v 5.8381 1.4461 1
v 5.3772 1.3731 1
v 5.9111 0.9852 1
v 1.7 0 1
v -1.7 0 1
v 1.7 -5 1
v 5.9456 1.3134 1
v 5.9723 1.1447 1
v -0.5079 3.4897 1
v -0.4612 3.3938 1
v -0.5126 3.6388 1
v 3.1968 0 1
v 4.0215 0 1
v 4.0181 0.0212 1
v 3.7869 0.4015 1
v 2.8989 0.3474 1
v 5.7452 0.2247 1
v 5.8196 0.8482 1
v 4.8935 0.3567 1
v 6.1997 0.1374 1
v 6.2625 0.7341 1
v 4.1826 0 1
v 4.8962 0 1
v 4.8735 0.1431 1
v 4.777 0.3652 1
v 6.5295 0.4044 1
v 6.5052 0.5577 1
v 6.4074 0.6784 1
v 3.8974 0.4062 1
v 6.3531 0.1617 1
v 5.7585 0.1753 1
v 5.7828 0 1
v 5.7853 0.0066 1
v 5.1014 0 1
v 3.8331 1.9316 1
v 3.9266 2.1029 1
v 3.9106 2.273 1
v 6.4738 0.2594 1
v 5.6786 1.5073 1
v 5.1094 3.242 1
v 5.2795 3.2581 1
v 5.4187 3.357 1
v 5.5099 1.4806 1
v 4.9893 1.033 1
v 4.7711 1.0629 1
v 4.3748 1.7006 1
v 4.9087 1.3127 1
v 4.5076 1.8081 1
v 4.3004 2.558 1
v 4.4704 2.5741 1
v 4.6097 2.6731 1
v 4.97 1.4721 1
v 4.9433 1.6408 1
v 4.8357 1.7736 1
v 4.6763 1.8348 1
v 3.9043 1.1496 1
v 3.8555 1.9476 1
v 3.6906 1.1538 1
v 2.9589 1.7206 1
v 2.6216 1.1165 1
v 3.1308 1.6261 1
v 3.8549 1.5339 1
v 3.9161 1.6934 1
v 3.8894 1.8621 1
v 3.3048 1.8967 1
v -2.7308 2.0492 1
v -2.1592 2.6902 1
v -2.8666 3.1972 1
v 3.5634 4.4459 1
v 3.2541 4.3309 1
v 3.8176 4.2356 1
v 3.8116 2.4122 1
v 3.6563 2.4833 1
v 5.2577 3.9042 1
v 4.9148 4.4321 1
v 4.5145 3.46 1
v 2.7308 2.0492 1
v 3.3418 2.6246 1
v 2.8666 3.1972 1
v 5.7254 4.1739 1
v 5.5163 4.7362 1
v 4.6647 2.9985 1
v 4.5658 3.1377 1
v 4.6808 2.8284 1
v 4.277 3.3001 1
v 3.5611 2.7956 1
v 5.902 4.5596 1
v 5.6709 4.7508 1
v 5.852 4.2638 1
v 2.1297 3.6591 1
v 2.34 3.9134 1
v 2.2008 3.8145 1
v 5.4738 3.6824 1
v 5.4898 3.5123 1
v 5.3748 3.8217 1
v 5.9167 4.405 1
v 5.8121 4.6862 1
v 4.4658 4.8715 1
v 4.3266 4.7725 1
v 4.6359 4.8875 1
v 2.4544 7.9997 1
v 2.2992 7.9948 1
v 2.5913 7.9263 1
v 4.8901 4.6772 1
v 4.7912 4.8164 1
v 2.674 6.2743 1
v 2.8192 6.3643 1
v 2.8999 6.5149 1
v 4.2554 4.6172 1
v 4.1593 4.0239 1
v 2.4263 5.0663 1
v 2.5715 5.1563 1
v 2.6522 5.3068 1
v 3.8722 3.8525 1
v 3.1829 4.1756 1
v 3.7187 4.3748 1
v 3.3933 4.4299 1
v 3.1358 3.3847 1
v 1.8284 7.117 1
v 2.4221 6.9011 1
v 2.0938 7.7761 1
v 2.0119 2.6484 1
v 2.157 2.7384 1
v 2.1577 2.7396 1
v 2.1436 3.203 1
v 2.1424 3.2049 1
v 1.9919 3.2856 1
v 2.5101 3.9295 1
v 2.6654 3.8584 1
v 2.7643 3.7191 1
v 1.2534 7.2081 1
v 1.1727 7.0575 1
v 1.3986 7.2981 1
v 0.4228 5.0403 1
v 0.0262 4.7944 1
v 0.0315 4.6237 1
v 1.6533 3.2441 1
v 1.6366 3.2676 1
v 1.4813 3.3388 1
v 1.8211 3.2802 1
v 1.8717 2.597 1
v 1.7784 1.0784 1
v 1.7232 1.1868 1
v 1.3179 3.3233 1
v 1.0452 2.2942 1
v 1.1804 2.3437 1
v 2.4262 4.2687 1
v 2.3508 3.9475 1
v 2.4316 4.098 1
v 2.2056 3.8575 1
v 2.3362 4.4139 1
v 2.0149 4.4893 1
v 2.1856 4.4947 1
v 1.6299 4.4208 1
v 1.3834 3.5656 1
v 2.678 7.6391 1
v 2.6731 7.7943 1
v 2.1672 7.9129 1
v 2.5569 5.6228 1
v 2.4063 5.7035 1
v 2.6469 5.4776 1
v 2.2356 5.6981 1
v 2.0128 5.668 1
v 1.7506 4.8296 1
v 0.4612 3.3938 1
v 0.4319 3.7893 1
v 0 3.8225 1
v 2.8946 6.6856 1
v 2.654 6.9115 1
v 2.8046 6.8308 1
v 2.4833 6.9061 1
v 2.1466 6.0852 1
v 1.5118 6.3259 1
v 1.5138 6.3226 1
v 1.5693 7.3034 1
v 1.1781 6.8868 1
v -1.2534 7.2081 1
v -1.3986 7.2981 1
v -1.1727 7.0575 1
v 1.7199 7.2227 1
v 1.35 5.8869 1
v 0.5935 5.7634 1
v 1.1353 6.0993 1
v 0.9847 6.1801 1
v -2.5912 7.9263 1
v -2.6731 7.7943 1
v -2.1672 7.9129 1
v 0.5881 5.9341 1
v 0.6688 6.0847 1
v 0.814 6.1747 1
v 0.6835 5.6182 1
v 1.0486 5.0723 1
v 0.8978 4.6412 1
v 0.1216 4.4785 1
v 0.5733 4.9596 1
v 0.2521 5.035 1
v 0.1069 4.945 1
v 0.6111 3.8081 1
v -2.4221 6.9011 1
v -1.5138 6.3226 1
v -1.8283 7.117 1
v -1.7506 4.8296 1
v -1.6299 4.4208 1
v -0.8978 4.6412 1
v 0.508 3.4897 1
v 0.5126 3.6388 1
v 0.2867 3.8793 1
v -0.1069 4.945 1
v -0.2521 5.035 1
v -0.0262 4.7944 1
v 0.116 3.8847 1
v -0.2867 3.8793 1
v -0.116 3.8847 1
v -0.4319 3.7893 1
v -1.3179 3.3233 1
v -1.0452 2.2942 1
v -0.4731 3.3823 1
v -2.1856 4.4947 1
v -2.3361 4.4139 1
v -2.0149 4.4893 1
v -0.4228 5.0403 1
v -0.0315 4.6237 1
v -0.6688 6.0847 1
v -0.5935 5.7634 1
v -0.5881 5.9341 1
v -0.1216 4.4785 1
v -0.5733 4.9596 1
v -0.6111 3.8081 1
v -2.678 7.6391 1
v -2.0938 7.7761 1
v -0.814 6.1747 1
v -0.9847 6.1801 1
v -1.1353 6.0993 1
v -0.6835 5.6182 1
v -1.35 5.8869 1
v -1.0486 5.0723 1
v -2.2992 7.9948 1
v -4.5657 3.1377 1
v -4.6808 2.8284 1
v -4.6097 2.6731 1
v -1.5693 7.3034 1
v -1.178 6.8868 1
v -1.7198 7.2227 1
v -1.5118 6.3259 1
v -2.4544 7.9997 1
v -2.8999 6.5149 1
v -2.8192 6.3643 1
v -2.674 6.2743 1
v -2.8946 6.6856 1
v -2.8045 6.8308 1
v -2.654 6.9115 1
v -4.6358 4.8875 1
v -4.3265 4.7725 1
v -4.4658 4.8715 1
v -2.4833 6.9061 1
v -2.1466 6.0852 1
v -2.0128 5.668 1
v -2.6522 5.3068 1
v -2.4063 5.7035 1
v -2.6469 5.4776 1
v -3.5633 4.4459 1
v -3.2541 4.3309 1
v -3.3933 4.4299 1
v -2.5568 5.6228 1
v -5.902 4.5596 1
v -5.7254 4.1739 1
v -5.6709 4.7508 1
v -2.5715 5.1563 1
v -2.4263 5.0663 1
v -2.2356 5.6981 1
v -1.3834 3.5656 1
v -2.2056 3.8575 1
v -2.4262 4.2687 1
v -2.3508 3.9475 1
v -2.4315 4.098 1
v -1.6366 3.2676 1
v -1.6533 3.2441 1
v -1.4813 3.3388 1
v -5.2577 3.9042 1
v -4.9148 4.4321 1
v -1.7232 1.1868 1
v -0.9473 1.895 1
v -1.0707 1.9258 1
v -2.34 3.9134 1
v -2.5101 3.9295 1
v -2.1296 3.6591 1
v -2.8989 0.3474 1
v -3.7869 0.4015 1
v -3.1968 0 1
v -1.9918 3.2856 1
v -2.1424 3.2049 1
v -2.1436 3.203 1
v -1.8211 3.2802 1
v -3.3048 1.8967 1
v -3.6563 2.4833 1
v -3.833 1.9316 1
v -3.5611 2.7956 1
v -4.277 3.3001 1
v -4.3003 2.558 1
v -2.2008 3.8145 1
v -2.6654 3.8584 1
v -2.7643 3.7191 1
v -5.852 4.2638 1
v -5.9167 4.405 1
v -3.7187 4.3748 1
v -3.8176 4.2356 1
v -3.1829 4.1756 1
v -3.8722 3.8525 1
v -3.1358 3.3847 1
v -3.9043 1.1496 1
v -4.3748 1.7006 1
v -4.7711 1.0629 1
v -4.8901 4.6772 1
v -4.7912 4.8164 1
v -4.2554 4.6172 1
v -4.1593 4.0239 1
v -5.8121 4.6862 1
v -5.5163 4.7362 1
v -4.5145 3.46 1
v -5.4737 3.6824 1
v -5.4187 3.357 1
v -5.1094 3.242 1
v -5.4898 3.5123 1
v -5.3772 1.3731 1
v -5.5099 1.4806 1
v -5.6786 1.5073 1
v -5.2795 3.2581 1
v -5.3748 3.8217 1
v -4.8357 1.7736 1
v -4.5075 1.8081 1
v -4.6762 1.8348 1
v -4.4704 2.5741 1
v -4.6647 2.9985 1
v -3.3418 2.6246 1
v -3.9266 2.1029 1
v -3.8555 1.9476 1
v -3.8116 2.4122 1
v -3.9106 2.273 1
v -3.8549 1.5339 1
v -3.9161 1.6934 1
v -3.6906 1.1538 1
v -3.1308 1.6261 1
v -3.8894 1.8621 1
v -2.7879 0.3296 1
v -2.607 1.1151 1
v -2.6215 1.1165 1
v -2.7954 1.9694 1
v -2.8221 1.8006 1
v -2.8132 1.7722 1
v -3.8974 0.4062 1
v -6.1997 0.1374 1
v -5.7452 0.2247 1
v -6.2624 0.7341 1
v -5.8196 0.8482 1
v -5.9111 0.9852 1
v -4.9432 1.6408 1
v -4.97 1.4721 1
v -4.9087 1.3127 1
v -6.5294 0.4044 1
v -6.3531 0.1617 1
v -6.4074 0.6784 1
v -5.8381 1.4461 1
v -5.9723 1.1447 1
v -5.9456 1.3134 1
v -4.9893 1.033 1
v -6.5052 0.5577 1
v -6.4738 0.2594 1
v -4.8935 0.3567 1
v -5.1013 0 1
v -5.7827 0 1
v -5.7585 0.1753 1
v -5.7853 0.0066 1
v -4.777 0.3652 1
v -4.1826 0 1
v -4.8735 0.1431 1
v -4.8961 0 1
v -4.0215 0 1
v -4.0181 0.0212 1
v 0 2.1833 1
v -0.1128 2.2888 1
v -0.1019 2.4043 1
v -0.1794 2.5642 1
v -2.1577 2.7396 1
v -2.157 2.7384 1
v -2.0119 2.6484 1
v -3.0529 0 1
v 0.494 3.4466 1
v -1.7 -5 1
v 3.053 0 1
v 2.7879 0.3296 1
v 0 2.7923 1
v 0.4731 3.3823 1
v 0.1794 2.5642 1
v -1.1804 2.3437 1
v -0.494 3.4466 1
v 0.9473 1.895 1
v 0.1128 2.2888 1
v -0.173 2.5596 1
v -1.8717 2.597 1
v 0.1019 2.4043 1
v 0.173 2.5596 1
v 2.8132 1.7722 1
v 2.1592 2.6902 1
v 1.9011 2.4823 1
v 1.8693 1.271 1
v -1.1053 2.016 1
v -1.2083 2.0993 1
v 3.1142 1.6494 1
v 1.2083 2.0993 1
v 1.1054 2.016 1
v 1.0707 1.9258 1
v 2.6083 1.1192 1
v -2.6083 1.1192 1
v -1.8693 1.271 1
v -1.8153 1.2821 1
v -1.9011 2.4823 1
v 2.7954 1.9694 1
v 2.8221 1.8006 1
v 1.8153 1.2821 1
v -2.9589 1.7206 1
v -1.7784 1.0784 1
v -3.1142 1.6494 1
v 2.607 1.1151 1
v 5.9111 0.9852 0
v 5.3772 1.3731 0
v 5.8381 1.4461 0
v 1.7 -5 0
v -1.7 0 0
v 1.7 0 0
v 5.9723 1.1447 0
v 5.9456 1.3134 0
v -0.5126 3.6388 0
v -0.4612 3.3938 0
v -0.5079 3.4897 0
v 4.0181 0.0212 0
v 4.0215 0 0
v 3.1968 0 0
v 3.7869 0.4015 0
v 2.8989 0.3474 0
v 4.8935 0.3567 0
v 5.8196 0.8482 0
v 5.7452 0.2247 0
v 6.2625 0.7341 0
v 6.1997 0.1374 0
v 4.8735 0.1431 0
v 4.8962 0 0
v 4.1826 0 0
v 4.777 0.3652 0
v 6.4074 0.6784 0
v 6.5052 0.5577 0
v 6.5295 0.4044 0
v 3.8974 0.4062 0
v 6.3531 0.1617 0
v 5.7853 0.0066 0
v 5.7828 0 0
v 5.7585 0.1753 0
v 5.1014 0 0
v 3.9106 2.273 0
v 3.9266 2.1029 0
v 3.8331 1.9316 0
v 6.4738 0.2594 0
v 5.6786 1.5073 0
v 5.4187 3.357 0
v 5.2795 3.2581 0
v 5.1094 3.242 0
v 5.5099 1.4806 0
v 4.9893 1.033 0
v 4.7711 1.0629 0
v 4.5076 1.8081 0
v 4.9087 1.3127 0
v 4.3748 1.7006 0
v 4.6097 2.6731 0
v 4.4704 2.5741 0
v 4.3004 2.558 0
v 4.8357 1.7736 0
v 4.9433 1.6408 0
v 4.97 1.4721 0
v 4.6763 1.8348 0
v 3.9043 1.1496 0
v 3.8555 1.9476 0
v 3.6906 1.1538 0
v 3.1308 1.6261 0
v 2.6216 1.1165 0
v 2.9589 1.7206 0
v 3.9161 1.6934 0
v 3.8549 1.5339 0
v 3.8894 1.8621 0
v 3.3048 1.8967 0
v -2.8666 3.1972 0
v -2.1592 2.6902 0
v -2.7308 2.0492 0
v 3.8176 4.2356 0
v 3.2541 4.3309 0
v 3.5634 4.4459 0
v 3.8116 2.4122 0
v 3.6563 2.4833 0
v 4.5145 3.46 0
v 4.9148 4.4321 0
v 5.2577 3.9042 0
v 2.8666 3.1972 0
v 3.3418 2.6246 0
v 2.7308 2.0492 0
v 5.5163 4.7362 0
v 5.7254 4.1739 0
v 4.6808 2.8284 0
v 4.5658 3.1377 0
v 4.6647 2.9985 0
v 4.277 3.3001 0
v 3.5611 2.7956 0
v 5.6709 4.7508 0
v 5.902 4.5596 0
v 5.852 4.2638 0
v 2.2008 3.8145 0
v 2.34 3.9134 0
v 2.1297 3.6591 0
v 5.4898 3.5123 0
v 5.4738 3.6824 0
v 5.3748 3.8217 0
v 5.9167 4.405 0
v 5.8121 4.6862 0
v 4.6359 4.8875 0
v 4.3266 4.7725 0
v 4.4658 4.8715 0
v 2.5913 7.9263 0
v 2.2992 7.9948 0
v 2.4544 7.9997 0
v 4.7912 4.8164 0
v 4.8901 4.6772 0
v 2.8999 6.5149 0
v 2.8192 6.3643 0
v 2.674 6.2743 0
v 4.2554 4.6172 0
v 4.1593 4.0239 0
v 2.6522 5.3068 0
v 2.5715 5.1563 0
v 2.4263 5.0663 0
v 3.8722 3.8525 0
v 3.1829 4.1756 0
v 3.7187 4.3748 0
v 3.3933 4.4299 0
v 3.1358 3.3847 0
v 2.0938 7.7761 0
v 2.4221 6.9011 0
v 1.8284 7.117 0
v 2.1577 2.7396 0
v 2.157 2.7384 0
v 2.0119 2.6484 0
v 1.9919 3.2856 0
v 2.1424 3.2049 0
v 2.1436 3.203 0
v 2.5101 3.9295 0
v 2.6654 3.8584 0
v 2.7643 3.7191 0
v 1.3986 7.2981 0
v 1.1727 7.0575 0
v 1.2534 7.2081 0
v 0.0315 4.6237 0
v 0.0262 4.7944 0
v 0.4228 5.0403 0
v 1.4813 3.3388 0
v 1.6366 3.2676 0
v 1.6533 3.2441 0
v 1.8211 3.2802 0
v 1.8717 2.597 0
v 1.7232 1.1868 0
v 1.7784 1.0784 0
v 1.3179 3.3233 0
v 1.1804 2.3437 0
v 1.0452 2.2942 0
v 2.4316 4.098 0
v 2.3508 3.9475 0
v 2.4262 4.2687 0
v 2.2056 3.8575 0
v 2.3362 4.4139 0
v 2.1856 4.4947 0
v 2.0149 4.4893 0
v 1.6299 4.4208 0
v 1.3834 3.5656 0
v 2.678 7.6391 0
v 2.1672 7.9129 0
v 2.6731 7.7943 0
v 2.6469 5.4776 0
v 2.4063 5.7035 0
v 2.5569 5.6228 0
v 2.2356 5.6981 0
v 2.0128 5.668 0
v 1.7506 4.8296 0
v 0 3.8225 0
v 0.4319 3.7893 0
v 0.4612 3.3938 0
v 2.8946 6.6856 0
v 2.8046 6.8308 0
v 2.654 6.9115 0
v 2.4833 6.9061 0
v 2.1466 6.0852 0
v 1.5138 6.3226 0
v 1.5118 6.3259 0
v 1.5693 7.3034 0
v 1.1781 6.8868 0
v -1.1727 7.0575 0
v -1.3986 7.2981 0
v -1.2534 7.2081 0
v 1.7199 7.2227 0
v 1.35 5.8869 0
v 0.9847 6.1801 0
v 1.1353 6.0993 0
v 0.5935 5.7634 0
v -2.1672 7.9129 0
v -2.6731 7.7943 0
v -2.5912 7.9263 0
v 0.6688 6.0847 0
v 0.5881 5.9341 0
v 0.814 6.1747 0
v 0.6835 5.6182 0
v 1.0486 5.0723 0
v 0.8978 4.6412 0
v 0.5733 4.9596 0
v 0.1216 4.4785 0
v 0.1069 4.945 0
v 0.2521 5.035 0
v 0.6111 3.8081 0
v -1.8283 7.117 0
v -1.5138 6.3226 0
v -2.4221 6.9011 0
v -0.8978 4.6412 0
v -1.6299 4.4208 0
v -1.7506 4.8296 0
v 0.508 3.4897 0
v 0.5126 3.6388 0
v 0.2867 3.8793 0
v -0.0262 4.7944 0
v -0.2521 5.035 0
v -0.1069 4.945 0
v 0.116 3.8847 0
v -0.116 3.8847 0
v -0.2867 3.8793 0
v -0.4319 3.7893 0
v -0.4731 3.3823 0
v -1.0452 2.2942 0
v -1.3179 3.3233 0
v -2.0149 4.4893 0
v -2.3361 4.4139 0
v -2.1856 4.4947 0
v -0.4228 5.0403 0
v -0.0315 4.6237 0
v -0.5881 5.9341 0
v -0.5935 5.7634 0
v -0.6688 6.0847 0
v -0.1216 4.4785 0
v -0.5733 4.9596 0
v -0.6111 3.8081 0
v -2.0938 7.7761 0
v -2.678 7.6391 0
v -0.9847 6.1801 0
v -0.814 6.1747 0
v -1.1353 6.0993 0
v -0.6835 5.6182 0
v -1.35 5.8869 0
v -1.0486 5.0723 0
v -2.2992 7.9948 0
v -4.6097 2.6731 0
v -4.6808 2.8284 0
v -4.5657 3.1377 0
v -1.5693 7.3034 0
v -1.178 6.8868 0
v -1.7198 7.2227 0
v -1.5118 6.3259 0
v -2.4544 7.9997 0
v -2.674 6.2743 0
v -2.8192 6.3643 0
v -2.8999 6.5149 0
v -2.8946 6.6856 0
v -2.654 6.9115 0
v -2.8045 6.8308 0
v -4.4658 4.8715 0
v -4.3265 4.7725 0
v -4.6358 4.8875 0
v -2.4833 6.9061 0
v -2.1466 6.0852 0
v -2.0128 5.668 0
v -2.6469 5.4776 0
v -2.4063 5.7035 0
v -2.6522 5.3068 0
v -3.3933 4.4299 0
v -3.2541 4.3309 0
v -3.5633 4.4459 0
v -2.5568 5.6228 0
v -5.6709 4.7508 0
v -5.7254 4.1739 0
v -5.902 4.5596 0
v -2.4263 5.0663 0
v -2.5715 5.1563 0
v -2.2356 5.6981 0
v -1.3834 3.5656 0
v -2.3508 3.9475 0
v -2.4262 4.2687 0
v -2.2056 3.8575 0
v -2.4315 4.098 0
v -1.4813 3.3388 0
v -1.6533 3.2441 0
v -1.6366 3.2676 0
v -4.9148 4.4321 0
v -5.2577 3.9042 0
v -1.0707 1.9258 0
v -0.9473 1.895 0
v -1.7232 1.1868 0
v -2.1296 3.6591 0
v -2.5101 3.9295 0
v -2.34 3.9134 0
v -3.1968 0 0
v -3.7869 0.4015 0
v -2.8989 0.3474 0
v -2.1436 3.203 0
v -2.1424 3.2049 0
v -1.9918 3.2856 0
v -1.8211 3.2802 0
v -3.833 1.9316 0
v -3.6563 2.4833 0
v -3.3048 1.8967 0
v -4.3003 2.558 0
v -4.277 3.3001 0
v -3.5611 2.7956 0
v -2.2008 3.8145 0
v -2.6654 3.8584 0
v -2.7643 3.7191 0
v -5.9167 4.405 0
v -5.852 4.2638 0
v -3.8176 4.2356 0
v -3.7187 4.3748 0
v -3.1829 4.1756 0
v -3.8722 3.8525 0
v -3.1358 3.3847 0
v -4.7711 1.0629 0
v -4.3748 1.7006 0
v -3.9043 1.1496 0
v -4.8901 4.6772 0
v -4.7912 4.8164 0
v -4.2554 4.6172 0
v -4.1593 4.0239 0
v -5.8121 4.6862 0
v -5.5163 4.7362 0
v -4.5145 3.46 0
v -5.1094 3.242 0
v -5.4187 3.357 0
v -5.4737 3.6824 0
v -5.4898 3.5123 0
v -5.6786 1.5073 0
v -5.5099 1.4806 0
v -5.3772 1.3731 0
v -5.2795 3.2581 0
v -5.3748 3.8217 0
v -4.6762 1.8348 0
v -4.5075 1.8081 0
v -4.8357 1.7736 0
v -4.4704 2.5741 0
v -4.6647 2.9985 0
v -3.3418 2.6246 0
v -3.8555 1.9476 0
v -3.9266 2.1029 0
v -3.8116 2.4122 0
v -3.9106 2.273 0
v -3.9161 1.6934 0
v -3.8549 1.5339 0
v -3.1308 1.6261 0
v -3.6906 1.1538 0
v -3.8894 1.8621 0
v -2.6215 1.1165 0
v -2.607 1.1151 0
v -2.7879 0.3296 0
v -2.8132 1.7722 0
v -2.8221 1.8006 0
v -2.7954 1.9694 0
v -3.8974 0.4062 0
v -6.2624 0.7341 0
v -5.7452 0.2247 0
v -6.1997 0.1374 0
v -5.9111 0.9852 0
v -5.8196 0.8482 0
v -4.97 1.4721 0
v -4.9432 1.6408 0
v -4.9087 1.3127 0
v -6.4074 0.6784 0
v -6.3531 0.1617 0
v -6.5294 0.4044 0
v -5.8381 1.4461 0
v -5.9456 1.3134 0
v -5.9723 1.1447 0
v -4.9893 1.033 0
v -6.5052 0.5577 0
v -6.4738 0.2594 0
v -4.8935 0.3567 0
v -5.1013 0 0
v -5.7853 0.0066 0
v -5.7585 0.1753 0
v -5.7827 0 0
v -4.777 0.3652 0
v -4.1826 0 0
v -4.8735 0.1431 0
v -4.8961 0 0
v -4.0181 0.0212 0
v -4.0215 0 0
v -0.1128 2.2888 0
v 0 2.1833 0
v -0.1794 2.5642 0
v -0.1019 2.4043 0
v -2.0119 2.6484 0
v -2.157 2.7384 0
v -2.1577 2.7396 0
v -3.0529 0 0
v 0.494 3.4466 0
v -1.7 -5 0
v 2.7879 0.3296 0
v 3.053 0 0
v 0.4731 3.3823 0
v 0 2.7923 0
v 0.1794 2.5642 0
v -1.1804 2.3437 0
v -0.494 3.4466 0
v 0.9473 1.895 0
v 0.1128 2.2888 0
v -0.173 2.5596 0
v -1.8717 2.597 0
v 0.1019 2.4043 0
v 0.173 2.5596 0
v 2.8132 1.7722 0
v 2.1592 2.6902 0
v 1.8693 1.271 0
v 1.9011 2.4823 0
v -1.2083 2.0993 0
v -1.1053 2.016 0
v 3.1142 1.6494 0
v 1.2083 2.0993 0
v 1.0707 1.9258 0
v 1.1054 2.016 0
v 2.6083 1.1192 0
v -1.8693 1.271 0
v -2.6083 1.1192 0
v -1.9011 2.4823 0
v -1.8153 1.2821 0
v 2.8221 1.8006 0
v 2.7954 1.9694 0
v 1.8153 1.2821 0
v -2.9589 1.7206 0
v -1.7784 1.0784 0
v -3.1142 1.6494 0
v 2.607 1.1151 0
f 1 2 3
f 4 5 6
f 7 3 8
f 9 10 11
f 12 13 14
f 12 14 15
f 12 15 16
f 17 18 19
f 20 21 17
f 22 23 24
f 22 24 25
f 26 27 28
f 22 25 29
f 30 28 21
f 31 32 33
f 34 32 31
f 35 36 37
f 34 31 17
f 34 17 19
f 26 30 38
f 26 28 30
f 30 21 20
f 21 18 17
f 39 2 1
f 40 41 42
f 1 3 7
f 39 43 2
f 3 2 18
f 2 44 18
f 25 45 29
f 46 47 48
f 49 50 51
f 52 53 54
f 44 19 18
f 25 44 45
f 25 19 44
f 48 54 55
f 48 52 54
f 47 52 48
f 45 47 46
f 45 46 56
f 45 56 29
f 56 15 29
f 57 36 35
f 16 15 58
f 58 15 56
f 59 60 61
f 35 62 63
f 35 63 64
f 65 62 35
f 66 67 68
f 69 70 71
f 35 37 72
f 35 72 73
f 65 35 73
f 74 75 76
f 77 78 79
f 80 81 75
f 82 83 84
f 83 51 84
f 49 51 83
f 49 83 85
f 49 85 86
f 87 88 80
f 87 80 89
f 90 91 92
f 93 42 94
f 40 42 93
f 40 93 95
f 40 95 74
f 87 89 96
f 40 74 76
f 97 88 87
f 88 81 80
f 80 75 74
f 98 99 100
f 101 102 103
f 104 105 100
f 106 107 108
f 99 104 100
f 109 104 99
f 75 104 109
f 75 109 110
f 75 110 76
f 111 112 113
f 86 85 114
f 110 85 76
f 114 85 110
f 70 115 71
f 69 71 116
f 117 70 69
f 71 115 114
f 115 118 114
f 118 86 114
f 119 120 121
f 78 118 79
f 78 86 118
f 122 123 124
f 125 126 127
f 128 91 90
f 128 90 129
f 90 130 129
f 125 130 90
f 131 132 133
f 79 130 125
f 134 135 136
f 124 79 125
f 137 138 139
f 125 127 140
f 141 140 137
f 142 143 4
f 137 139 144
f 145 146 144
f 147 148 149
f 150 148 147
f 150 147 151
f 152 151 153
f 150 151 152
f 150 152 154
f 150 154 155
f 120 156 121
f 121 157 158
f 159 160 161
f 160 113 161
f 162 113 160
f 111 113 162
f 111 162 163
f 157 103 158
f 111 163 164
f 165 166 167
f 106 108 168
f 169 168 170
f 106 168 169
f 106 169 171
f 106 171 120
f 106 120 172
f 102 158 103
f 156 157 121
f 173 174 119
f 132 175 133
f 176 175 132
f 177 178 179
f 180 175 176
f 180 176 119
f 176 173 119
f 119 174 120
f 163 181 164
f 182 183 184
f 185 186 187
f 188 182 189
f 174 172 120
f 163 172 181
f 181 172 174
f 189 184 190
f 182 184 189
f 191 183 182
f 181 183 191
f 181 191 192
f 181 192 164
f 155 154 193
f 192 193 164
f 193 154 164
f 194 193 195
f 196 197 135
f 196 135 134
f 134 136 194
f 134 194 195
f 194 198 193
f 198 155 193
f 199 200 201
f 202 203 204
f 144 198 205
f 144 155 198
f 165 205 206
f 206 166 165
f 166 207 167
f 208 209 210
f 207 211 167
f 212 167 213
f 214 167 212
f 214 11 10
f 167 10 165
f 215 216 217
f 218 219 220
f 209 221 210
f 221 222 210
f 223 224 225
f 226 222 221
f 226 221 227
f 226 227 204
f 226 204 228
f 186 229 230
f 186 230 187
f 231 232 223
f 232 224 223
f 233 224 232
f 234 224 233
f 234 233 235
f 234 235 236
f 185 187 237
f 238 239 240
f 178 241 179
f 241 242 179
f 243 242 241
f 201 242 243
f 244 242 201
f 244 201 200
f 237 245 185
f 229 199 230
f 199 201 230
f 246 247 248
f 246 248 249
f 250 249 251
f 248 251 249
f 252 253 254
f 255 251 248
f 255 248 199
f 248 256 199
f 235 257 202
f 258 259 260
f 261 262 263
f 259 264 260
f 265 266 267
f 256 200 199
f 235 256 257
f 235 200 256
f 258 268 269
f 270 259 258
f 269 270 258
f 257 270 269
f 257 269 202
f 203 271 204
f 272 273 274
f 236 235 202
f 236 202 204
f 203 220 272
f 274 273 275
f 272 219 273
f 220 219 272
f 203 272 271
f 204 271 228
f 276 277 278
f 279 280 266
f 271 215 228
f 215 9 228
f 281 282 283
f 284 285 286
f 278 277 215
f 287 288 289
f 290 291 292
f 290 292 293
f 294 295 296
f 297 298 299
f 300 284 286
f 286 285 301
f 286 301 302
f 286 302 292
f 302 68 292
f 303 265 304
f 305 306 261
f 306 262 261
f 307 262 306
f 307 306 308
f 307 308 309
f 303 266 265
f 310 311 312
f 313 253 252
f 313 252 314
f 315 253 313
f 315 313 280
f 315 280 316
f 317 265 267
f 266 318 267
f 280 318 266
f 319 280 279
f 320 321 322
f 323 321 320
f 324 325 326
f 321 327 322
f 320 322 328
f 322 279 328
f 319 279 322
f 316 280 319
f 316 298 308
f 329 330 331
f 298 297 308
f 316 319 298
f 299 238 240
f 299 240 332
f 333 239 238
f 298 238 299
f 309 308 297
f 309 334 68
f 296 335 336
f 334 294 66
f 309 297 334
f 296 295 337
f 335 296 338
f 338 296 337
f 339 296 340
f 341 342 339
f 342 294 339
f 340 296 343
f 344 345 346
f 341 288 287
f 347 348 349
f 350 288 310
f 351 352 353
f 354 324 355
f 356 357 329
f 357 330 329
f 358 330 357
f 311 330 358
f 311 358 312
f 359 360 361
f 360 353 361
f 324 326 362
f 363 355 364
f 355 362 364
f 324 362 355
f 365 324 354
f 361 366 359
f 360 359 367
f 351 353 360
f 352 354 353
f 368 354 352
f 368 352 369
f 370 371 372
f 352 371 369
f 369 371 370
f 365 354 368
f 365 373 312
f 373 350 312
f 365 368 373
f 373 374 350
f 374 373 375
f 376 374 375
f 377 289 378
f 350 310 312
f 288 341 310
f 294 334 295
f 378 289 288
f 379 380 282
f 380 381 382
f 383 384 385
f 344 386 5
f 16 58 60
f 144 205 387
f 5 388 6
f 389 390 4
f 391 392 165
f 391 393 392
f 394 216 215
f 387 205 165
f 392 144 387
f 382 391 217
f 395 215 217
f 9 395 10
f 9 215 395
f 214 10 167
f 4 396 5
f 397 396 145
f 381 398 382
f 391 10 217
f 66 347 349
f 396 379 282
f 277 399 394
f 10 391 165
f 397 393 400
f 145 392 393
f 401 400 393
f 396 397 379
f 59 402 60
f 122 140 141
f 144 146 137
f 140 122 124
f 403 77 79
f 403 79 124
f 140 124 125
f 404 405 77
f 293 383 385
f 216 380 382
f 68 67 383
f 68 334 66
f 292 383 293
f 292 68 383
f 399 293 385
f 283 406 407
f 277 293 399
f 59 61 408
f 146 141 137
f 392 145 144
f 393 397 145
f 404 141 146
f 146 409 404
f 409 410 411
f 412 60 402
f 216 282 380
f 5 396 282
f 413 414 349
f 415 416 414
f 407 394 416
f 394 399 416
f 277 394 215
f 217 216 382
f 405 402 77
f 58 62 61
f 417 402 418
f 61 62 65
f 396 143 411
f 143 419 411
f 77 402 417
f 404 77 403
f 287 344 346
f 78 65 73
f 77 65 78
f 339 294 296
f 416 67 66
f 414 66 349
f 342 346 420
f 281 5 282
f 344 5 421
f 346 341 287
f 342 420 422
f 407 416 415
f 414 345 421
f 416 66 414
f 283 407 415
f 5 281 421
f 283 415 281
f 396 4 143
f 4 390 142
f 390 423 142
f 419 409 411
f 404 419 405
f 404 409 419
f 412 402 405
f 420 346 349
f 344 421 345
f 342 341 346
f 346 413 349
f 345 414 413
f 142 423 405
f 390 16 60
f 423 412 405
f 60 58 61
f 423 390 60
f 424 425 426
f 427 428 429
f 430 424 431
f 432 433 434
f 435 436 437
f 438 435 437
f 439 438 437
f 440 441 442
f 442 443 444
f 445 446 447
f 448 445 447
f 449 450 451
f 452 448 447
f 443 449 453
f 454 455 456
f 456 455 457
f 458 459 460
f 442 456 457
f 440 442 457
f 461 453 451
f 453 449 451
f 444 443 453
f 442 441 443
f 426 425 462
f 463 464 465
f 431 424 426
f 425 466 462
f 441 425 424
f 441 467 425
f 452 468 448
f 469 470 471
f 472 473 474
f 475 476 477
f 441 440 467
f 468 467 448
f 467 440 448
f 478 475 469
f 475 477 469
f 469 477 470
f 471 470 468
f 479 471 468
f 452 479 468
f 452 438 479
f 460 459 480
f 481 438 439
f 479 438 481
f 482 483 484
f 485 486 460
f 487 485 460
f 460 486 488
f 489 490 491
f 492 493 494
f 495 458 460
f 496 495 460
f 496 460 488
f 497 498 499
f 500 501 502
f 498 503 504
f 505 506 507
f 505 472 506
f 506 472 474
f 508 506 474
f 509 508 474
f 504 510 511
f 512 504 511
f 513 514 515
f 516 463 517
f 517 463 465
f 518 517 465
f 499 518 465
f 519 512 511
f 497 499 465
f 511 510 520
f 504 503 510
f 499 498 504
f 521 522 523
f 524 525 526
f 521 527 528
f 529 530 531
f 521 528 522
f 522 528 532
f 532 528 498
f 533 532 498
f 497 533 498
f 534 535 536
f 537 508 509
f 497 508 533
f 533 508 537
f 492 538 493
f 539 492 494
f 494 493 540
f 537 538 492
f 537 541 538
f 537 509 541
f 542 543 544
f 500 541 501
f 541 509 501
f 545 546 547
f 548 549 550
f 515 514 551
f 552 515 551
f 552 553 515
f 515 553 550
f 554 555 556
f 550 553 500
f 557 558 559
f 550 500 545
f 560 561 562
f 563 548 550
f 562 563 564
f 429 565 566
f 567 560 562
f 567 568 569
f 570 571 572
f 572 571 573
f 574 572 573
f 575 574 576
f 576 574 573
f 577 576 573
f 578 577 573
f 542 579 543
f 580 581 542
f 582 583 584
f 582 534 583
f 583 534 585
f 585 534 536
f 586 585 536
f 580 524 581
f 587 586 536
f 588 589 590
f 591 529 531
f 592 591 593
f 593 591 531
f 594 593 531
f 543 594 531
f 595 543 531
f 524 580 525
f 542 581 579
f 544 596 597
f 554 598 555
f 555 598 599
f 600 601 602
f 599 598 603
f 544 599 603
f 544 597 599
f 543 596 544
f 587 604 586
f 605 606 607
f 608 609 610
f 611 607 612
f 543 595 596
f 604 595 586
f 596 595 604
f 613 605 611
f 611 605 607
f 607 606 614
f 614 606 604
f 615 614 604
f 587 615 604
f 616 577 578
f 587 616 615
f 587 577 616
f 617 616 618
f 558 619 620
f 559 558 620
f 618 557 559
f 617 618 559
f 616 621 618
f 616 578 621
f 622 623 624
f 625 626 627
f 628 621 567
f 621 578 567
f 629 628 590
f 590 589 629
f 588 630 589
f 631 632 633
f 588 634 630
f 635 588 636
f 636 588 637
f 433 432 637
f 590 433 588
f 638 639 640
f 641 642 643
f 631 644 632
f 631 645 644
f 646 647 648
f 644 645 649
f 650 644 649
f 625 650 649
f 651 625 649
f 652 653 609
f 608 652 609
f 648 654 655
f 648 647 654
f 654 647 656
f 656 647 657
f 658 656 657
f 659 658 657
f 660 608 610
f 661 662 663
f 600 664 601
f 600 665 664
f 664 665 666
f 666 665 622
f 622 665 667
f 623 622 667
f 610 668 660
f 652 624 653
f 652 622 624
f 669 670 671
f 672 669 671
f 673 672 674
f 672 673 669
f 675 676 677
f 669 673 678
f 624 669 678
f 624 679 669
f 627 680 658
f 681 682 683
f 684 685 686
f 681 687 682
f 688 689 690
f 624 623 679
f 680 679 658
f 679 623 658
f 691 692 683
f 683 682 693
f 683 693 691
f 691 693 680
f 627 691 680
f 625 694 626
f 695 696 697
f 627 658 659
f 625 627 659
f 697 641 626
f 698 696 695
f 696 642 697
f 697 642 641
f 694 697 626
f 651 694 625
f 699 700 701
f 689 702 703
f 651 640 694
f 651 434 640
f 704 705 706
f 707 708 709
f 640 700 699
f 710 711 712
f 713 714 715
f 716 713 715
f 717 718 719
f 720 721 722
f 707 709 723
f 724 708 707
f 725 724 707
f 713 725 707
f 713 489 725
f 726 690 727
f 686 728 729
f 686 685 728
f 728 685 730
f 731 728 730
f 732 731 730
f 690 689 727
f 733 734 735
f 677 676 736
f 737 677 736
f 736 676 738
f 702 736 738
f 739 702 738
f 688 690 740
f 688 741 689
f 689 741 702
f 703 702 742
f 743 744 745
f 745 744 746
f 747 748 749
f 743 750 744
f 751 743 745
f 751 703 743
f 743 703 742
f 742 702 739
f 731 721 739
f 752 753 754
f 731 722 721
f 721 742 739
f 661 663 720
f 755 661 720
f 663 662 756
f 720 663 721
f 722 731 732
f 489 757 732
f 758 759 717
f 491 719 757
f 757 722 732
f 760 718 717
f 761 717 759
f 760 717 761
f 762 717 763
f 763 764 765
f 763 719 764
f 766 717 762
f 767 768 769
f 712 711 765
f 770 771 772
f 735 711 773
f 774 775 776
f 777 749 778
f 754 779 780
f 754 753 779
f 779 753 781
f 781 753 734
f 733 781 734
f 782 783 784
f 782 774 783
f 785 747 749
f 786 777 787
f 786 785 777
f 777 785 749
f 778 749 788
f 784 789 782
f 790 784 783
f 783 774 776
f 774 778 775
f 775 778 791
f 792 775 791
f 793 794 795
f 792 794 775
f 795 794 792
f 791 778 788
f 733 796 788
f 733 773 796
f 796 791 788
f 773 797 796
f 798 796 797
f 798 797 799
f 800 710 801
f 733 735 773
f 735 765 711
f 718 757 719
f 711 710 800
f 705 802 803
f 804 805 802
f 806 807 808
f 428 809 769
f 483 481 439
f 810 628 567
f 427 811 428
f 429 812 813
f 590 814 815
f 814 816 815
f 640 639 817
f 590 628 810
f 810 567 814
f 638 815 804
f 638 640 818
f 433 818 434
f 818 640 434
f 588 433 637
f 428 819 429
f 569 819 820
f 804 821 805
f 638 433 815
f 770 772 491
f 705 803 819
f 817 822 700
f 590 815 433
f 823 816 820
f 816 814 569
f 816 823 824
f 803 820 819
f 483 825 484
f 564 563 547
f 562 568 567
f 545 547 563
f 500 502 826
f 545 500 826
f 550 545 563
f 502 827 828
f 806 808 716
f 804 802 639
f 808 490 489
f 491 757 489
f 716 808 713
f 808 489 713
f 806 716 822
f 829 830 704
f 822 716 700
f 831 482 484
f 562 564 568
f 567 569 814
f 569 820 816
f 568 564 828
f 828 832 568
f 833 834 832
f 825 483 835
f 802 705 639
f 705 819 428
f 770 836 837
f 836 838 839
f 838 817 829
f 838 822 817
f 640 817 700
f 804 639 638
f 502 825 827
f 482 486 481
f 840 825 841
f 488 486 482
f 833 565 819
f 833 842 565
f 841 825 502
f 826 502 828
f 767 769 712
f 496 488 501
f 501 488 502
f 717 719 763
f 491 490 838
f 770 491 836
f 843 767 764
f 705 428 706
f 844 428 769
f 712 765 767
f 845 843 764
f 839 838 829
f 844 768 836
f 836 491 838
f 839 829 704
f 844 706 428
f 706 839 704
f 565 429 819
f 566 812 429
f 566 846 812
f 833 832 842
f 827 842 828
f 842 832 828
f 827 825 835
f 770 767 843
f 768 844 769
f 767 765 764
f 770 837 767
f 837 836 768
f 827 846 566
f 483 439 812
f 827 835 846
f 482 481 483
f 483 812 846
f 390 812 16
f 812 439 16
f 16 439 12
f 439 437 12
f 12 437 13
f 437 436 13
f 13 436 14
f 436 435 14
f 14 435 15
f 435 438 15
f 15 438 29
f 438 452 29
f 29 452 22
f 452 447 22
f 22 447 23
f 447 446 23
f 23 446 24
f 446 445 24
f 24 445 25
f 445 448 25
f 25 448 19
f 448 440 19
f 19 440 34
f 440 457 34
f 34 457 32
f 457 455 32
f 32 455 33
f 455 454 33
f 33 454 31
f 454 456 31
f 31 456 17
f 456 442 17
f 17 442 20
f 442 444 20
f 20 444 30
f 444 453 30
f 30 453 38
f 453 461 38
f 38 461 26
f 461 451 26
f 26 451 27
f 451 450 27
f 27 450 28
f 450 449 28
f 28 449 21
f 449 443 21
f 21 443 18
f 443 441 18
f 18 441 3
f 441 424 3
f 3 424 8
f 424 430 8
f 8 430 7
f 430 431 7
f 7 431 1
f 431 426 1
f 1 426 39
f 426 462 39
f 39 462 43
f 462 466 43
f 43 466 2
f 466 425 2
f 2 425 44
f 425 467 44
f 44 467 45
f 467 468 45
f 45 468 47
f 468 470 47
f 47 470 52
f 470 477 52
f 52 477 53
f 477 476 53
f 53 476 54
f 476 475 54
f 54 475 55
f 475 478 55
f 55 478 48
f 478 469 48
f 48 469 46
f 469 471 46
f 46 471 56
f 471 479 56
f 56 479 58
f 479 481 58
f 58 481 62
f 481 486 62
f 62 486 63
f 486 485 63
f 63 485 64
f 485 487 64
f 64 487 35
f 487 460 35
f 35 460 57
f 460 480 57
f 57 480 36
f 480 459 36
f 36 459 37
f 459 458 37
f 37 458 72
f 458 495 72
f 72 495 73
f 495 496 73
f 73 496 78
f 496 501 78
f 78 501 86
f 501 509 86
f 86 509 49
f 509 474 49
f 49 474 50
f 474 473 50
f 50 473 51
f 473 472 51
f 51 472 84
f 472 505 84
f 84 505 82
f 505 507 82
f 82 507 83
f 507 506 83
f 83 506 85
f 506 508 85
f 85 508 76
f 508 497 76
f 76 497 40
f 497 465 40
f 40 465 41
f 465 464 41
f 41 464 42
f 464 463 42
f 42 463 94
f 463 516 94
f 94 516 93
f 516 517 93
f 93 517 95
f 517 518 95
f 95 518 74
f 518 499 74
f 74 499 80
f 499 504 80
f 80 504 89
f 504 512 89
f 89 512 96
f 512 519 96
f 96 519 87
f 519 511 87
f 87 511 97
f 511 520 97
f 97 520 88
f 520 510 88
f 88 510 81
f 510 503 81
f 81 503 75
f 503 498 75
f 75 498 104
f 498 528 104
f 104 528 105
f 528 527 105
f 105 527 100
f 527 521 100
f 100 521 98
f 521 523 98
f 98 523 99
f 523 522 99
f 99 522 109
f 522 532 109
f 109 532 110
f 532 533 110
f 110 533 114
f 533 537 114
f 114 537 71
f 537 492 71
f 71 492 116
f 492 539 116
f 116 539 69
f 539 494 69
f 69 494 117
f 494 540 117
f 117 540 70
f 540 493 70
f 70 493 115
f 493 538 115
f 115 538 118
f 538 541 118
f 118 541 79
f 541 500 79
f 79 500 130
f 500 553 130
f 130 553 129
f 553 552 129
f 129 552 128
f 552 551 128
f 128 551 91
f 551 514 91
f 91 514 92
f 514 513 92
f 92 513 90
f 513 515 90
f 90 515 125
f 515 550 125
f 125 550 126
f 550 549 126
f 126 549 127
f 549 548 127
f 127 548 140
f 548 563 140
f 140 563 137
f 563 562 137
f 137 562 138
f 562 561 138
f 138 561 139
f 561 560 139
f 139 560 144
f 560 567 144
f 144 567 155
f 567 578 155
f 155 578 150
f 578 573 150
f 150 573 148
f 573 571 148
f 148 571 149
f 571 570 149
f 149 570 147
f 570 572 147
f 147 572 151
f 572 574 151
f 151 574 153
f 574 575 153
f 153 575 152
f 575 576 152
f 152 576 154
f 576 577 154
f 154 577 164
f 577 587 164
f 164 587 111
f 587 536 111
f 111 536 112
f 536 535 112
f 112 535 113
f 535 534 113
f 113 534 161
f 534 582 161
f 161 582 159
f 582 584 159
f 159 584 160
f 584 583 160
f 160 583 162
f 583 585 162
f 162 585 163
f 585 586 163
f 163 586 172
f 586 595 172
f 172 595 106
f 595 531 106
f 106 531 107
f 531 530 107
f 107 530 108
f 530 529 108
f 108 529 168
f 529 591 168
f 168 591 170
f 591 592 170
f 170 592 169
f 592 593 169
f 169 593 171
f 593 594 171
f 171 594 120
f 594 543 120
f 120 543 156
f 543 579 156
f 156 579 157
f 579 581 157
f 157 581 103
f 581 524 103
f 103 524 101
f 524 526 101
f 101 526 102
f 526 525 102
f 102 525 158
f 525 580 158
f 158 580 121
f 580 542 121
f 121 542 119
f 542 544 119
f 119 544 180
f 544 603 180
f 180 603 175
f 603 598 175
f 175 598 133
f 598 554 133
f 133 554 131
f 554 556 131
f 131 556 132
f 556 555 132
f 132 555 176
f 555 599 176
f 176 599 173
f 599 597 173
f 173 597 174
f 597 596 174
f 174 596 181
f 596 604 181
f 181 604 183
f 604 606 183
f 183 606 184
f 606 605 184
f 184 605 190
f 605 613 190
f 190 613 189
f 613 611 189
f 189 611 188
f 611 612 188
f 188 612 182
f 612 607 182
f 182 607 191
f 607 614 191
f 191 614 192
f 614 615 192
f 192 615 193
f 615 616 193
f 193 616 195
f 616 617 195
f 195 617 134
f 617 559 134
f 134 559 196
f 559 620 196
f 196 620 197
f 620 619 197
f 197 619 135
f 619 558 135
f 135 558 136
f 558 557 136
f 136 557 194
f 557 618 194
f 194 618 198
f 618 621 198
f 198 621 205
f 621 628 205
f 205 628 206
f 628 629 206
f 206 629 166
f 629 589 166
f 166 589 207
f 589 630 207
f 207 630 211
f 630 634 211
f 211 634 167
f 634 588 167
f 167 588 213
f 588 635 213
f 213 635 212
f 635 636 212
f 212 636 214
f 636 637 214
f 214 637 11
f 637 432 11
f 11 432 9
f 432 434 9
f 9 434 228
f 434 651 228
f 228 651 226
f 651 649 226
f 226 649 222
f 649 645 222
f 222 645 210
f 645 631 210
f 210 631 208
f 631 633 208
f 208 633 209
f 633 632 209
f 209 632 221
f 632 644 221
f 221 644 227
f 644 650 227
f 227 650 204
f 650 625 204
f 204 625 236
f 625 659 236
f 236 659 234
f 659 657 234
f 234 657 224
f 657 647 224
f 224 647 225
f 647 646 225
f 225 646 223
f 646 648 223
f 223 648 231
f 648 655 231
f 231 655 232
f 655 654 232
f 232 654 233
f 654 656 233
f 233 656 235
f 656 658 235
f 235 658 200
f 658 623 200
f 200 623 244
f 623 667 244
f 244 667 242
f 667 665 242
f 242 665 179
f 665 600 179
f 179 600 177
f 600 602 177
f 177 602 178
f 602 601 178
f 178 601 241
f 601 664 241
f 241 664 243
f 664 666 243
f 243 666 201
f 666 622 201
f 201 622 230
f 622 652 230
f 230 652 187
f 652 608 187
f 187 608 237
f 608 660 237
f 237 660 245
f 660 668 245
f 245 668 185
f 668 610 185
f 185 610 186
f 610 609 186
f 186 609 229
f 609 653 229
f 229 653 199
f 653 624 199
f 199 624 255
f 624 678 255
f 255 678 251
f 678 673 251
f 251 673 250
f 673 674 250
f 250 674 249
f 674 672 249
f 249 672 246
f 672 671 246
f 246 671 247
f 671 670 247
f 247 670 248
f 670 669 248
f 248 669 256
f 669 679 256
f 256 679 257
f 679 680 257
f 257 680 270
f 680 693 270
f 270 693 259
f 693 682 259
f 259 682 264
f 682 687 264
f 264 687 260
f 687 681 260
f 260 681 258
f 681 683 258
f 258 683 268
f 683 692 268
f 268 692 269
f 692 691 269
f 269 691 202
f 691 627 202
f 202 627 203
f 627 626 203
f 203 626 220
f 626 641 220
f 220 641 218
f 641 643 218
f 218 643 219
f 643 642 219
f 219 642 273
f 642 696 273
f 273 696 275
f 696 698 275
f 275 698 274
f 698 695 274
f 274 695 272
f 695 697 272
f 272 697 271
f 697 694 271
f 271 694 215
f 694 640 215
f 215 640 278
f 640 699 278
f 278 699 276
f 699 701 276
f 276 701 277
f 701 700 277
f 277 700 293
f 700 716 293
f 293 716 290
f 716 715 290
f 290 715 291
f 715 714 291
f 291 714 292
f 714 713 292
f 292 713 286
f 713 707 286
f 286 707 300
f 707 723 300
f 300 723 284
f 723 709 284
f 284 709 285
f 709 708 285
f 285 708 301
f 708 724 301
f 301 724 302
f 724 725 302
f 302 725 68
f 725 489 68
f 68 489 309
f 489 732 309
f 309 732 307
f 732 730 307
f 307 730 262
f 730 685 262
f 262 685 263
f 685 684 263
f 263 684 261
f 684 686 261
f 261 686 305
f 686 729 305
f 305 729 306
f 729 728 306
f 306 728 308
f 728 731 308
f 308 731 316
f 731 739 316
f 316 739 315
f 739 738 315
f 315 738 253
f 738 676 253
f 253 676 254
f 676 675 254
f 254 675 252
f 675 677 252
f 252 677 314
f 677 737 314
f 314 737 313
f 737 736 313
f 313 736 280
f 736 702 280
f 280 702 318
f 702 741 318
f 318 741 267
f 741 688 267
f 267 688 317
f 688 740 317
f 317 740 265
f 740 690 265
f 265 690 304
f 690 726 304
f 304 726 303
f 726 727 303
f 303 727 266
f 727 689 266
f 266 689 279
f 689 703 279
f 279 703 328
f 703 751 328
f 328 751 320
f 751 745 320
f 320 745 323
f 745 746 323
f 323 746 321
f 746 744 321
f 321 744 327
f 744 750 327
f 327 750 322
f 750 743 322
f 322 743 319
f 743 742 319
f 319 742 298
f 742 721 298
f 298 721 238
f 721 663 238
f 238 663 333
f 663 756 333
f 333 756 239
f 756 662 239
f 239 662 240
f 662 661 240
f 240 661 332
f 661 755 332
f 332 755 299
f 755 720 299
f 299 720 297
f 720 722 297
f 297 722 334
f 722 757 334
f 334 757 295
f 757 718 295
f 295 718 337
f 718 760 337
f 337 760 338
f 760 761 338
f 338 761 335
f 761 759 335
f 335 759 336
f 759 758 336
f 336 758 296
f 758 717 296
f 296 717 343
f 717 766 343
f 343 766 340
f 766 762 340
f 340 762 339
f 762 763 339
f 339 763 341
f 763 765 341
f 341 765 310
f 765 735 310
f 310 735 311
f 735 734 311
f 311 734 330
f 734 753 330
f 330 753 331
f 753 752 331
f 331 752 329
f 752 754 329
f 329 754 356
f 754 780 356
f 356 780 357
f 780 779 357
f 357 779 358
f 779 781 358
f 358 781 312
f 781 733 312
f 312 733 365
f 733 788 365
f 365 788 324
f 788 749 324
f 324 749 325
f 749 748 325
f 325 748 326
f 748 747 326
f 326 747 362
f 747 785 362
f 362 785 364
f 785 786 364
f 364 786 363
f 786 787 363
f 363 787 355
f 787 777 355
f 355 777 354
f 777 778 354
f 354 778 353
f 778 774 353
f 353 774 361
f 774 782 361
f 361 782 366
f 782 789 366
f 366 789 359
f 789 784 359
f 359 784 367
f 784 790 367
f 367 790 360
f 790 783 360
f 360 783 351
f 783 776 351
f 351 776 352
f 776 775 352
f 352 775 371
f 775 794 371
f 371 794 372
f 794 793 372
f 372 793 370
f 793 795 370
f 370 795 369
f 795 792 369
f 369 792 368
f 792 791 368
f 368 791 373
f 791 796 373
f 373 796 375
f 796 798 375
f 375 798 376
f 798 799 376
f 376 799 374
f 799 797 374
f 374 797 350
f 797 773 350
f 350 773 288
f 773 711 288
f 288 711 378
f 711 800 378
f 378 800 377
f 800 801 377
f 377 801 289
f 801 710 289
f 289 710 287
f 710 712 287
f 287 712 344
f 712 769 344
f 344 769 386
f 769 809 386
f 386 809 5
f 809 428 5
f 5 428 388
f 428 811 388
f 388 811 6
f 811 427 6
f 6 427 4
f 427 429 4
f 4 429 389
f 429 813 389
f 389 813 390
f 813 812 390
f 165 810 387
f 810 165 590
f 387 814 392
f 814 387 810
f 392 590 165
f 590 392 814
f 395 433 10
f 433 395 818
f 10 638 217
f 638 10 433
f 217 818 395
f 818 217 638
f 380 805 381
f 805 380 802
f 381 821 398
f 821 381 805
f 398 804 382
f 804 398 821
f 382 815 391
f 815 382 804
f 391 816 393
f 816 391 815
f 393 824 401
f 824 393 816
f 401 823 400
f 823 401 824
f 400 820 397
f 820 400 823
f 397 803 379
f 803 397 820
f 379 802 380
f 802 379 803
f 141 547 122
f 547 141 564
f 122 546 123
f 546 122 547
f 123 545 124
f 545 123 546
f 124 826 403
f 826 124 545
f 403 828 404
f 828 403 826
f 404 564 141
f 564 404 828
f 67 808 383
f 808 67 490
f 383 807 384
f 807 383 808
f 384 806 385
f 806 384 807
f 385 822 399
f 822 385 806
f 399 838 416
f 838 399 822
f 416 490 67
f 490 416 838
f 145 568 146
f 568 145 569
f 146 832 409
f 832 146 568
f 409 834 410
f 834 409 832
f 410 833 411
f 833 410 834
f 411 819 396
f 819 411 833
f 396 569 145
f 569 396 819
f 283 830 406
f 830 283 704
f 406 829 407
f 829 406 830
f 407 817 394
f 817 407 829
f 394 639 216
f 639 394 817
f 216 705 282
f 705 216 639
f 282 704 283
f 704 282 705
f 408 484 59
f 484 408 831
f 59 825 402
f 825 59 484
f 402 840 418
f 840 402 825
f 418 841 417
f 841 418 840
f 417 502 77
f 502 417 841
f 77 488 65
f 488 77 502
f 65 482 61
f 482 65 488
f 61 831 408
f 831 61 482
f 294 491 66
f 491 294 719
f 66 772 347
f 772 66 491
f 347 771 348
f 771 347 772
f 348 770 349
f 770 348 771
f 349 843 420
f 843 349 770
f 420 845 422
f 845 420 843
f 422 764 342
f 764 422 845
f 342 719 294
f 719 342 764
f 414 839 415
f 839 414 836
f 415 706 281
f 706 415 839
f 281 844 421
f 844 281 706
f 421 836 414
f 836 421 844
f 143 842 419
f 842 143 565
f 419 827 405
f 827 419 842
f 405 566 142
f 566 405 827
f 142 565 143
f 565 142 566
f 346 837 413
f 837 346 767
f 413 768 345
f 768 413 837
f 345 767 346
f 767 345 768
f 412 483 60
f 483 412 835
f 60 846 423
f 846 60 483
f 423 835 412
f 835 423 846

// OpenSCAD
// Plant_Leaves_04.stl  -  Store Versile room frame (Rev C)
// Quantity: 2   Filament: Leaf green (e.g. PLA Matte Grass Green)
// Print: layer 0.12 mm, infill 100%, 2 walls, brim 0 mm, NO supports
// Orientation: back  (lying on its back, front face up)
// Notes: Print 2. Flat, 1.0 mm.
// The library draws parts with their front toward +Y; mirror([0,1,0]) makes the real
// part face the viewer correctly (see build.py). Edit dimensions in versile_parts.scad.
use <../versile_parts.scad>

rotate([-90, 0, 0]) mirror([0, 1, 0]) plant_leaves_04();
